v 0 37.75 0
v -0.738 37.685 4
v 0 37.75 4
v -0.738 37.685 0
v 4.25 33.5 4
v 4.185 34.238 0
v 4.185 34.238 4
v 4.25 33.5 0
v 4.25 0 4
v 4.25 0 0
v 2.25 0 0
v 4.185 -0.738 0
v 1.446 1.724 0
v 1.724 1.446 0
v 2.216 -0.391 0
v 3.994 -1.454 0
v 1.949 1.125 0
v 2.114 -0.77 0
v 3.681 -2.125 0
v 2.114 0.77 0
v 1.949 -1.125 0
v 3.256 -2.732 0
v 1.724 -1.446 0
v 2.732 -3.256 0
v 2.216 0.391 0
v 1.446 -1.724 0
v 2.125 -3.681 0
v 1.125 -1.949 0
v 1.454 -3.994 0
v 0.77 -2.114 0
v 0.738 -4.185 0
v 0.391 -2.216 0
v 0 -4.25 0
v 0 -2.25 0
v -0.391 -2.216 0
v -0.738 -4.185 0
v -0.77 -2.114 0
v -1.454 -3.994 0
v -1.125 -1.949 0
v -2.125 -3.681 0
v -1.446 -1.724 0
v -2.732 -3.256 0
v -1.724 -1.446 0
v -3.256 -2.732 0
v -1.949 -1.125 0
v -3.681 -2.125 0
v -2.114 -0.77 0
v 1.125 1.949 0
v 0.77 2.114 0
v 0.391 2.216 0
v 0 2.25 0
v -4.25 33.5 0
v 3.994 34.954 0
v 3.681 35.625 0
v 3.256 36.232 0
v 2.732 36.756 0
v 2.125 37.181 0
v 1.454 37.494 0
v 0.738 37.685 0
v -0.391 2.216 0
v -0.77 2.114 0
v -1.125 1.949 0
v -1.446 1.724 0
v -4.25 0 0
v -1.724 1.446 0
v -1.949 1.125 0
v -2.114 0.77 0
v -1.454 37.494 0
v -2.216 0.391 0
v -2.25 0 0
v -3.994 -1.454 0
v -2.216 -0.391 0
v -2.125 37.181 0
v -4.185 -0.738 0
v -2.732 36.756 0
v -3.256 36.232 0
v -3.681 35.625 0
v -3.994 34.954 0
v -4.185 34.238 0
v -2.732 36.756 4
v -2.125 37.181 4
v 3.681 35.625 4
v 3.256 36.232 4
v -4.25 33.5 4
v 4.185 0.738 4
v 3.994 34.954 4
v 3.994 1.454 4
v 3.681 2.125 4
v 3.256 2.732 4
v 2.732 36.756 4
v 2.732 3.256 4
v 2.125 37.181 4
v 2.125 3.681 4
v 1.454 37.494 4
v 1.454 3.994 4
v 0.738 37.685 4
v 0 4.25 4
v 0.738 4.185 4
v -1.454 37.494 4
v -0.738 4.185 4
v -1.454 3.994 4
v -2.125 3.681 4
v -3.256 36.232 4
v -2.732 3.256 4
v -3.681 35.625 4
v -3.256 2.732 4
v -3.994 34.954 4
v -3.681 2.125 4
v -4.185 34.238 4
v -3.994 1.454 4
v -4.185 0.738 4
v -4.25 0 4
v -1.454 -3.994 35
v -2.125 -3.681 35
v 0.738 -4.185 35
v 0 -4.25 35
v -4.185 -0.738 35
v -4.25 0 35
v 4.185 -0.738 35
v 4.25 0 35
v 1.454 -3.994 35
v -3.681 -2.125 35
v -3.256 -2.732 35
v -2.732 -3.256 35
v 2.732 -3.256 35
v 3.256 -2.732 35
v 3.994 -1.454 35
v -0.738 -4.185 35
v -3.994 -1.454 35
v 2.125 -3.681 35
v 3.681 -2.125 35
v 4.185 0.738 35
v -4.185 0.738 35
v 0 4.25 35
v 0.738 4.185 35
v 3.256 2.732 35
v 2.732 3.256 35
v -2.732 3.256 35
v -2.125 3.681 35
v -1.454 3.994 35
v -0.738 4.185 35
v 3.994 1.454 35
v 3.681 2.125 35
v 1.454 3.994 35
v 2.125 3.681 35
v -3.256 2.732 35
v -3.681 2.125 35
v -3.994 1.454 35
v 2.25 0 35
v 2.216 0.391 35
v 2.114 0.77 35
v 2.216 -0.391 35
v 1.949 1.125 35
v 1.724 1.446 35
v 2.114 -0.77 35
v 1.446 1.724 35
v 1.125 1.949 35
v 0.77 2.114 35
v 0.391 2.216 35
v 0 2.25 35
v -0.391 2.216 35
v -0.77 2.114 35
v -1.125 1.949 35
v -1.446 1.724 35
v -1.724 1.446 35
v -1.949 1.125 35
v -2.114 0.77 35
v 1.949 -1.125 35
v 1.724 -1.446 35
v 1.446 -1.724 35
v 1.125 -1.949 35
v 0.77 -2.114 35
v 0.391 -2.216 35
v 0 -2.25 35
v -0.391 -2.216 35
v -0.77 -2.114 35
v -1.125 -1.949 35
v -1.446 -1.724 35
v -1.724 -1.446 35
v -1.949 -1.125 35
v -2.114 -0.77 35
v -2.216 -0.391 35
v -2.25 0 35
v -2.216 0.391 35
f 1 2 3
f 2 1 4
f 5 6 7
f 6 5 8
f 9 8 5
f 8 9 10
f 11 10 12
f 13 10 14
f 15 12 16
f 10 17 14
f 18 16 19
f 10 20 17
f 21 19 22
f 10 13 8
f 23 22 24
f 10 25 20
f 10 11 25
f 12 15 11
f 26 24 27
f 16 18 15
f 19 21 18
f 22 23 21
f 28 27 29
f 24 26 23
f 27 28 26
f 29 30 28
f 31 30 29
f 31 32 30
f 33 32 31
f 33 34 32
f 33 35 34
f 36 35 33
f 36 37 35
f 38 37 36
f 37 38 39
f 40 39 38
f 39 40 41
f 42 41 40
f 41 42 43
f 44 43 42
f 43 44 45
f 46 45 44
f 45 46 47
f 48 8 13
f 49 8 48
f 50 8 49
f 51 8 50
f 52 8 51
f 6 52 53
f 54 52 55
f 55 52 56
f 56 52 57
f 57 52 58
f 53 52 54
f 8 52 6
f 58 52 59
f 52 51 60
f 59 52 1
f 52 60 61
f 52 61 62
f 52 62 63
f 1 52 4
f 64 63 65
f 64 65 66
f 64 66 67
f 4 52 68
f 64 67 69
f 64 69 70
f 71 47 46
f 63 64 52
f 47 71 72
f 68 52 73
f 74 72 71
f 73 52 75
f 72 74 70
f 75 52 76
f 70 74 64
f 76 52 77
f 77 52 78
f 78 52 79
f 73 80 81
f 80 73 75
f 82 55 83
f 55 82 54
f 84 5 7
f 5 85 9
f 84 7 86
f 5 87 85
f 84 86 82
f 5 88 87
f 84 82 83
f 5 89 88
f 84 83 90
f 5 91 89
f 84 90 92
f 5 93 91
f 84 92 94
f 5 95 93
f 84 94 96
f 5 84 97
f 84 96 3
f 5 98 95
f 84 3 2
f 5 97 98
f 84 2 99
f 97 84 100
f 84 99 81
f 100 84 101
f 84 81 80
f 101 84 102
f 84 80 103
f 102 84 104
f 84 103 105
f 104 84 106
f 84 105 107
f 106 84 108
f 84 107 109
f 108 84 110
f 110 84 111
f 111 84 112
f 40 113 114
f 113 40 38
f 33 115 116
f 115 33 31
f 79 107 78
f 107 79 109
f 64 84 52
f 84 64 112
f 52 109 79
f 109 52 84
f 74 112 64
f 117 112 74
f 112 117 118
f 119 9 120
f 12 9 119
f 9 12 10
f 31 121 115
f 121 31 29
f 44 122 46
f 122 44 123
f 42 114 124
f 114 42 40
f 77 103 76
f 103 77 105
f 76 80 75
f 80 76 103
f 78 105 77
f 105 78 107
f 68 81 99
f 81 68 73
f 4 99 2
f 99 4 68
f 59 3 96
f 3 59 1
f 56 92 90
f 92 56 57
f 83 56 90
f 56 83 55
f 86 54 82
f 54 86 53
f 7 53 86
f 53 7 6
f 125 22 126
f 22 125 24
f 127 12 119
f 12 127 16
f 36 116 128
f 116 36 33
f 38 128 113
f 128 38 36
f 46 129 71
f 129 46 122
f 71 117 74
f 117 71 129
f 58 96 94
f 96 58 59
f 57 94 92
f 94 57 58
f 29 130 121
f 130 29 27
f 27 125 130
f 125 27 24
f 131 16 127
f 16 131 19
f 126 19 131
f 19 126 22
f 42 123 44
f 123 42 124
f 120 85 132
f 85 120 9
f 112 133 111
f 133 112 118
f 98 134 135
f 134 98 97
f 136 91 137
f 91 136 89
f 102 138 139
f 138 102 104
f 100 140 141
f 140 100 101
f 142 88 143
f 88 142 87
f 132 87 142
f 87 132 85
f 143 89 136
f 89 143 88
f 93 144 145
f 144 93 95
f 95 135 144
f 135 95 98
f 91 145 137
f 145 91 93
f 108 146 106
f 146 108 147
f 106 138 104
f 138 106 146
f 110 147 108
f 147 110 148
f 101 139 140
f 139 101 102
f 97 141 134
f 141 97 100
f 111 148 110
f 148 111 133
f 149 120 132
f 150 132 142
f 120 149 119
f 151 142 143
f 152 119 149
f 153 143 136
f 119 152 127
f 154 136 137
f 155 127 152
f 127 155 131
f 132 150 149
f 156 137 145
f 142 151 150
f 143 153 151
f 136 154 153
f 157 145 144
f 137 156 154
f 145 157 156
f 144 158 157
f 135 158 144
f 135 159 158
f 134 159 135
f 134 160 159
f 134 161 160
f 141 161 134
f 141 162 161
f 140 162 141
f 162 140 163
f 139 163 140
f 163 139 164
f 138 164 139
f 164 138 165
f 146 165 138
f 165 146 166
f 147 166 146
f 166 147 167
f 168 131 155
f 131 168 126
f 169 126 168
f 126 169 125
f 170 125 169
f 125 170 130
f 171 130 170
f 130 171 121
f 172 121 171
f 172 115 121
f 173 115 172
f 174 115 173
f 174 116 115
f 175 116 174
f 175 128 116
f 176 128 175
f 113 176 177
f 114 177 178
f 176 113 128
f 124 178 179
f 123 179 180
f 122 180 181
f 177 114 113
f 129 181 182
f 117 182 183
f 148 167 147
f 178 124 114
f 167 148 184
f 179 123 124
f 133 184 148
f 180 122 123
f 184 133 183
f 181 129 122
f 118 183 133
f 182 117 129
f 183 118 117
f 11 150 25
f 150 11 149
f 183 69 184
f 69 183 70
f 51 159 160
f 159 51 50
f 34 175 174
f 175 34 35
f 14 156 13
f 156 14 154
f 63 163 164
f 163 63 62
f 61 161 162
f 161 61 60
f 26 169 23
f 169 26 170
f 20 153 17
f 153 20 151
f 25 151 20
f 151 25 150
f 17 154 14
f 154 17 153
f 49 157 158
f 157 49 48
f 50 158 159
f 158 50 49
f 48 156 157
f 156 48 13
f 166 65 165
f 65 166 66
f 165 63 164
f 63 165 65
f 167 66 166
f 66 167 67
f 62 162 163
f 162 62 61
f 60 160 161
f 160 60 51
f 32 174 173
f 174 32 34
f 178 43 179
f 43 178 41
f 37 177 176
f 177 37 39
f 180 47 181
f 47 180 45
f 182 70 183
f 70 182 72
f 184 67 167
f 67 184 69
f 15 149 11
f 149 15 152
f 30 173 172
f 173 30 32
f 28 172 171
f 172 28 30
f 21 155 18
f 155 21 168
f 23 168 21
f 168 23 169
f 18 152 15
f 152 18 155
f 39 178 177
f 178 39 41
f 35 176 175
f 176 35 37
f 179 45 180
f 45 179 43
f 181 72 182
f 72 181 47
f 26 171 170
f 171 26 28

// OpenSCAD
//4.2 innen


d_inner = 4.5;
d_outer = d_inner+2*2;

h_wood = 31;
h_lock = 4;

length_lock = 42-d_outer; // from center to center, so it's actually length+d_outer long!
$fn=36;
difference()
{
    union()
    {
        hull()
        {
            cylinder(d=d_outer, h=h_lock, center=false);
            translate([0, length_lock, 0])
            cylinder(d=d_outer, h=h_lock, center=false);
        }
        
        cylinder(d=d_outer, h=h_lock+h_wood, center=false);
    }
    
    translate([0, 0, -1])
    cylinder(d=d_inner, h=h_lock+h_wood+2, center=false);
}
